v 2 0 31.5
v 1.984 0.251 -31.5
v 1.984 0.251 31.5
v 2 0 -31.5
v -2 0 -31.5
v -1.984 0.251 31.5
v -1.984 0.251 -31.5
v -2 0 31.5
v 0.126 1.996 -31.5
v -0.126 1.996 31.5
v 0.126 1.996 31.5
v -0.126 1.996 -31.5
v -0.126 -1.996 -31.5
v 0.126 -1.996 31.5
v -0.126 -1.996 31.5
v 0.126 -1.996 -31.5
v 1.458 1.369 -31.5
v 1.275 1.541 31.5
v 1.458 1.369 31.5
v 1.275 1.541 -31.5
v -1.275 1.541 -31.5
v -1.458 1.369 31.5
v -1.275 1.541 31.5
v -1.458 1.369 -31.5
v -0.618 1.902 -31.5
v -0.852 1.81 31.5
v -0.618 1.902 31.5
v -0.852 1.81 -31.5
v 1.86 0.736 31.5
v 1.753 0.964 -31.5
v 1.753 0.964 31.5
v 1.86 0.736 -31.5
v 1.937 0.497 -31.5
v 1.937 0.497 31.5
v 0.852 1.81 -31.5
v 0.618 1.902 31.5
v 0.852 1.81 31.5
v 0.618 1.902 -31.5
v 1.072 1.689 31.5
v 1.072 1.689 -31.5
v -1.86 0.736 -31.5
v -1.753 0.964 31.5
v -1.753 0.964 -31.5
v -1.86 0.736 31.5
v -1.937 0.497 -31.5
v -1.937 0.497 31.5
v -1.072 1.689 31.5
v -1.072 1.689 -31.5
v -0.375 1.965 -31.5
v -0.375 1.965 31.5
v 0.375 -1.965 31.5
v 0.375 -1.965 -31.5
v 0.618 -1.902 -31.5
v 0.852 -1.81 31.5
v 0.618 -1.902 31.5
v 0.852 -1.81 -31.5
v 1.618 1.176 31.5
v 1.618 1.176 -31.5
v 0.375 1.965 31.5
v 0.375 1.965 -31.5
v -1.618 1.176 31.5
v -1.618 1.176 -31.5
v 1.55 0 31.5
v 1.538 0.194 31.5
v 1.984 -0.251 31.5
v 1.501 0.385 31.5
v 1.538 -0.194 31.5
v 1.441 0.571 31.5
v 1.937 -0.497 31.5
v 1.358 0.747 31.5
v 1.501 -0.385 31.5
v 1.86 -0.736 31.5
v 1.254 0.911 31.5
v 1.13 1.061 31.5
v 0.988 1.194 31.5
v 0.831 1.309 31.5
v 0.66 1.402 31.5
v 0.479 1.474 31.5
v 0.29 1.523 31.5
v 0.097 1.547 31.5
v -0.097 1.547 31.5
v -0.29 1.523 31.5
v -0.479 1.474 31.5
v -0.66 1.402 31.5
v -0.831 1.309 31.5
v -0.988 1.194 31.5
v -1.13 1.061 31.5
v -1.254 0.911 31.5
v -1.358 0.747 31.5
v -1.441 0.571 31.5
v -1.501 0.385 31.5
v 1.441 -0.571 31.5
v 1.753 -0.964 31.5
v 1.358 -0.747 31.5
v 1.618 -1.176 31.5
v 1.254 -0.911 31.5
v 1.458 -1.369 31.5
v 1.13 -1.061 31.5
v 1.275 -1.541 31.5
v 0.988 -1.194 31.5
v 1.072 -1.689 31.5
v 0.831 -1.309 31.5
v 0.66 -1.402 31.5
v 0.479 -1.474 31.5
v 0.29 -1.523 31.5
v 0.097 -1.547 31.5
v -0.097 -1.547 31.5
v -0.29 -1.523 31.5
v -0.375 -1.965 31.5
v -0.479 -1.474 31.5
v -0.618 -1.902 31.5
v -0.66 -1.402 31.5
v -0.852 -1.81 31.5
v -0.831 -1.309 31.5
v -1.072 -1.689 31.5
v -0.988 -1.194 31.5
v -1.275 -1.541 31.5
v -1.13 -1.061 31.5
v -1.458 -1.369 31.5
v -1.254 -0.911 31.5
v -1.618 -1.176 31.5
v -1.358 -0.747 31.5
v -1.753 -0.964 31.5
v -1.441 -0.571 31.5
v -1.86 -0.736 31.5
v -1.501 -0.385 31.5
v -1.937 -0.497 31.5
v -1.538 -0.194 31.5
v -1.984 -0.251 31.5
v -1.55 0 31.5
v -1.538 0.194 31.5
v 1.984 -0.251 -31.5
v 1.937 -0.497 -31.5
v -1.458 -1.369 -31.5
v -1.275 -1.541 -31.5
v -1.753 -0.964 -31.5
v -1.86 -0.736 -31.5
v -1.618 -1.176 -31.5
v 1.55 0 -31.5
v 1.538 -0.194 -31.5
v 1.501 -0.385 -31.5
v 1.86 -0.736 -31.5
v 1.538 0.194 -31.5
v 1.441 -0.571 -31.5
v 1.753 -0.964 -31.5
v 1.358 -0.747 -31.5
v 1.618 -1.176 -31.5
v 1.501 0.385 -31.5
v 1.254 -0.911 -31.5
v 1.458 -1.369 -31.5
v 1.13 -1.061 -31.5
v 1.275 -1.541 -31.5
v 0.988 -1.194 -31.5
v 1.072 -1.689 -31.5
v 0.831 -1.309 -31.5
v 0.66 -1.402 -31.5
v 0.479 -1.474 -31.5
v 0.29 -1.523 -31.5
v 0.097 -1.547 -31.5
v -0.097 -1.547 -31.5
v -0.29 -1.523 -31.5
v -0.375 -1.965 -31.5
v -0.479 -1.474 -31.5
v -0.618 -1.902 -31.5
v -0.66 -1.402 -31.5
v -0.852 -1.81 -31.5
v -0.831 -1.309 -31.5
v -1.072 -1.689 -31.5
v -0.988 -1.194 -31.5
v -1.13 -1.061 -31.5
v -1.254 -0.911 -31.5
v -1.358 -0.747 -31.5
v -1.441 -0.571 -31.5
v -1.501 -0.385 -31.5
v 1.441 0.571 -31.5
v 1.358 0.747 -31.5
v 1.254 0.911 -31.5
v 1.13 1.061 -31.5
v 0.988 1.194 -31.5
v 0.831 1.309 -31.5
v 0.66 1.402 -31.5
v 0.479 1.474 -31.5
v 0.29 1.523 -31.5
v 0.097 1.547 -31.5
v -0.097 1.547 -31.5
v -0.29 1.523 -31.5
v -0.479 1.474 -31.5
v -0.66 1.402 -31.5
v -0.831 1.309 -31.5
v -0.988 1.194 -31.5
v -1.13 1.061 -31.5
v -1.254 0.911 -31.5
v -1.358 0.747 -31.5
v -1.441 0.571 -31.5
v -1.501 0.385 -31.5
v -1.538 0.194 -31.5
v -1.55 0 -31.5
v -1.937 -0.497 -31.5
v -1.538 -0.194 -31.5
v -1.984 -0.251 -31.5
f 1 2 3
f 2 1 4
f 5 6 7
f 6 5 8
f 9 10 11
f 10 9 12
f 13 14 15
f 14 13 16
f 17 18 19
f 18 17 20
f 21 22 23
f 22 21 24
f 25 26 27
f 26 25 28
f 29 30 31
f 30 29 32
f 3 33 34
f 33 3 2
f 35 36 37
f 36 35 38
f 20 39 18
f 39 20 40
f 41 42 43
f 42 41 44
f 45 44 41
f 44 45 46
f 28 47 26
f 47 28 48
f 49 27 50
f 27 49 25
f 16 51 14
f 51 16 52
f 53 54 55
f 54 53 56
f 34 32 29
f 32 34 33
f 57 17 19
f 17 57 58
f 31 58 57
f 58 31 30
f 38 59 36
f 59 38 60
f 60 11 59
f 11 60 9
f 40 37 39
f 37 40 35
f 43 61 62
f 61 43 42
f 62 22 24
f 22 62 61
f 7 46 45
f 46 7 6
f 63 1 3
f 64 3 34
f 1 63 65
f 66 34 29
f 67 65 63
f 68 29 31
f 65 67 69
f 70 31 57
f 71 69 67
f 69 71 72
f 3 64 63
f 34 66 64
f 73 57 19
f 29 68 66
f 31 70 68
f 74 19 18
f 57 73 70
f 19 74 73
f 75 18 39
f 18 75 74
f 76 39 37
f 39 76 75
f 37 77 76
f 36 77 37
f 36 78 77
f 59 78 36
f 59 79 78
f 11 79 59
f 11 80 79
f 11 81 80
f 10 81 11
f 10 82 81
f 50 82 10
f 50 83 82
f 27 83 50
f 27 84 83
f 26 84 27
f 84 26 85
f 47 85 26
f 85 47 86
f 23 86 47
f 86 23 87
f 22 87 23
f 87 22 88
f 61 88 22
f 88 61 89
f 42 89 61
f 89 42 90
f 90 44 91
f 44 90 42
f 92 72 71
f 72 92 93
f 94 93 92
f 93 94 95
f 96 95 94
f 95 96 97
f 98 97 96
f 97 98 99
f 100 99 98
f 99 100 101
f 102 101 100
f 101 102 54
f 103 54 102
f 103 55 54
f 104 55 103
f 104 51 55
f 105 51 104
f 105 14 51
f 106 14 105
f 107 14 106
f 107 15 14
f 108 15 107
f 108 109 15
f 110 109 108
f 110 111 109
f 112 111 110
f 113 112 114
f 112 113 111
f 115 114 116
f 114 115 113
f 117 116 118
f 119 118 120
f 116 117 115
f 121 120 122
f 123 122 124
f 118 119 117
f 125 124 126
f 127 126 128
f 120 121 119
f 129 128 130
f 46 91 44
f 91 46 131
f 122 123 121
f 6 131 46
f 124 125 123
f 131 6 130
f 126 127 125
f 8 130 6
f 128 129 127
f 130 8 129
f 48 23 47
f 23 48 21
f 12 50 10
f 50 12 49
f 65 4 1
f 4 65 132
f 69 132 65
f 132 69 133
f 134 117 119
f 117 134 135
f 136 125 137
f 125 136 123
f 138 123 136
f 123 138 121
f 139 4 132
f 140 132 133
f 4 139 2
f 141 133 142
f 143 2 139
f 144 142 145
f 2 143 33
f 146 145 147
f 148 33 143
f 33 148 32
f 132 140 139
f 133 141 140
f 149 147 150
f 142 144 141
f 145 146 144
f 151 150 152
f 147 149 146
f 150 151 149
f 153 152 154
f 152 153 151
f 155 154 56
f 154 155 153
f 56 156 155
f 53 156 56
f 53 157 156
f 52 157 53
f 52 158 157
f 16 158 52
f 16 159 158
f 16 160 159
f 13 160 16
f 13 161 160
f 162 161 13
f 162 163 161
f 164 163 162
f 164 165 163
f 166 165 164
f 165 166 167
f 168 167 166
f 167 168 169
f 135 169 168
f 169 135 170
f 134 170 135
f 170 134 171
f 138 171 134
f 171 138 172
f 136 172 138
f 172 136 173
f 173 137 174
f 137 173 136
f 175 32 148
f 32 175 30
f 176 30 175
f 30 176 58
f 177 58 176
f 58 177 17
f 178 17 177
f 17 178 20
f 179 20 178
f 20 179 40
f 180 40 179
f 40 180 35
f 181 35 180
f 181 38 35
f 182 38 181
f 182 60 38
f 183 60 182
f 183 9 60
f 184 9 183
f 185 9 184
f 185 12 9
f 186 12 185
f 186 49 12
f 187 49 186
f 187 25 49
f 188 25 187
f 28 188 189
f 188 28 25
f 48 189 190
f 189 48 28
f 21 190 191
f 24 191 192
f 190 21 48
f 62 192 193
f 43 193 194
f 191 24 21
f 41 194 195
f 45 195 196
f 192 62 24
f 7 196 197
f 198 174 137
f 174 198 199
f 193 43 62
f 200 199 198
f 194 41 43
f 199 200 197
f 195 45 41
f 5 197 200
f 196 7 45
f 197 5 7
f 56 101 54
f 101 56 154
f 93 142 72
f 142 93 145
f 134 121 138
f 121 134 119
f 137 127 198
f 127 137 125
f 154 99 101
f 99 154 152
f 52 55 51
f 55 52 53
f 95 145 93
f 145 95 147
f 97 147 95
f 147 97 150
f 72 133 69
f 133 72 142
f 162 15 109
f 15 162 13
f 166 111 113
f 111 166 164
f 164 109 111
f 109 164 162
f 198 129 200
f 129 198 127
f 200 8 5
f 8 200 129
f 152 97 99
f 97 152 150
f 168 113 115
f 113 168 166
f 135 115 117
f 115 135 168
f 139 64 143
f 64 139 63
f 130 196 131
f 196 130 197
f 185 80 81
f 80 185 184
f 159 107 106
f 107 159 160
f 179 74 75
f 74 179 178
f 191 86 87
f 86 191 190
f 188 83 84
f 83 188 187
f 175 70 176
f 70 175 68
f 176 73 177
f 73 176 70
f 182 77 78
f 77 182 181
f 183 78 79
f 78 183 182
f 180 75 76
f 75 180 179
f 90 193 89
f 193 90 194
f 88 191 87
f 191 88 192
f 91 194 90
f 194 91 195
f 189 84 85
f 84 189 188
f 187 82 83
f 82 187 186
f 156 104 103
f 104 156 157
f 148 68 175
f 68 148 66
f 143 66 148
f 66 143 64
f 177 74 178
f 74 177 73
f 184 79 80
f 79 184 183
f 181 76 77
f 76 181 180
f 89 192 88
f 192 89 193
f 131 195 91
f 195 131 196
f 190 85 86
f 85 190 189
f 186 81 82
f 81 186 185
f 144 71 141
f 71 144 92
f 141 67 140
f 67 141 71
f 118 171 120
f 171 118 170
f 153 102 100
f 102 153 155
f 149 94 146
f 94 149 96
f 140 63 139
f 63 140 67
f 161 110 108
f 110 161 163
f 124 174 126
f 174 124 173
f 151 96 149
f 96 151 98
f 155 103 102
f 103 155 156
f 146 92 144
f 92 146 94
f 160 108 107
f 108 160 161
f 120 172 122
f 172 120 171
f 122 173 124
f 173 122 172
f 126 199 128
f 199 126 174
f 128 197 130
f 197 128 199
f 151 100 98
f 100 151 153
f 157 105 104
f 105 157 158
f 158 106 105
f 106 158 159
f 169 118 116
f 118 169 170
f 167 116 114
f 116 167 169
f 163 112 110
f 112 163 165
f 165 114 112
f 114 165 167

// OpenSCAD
$fn = 50;


difference() {
	union() {
		translate(v = [0, 0, -31.5000000000]) {
			cylinder(h = 63, r = 2.0000000000);
		}
	}
	union() {
		translate(v = [0, 0, -100.0000000000]) {
			cylinder(h = 200, r = 1.5500000000);
		}
	}
}
